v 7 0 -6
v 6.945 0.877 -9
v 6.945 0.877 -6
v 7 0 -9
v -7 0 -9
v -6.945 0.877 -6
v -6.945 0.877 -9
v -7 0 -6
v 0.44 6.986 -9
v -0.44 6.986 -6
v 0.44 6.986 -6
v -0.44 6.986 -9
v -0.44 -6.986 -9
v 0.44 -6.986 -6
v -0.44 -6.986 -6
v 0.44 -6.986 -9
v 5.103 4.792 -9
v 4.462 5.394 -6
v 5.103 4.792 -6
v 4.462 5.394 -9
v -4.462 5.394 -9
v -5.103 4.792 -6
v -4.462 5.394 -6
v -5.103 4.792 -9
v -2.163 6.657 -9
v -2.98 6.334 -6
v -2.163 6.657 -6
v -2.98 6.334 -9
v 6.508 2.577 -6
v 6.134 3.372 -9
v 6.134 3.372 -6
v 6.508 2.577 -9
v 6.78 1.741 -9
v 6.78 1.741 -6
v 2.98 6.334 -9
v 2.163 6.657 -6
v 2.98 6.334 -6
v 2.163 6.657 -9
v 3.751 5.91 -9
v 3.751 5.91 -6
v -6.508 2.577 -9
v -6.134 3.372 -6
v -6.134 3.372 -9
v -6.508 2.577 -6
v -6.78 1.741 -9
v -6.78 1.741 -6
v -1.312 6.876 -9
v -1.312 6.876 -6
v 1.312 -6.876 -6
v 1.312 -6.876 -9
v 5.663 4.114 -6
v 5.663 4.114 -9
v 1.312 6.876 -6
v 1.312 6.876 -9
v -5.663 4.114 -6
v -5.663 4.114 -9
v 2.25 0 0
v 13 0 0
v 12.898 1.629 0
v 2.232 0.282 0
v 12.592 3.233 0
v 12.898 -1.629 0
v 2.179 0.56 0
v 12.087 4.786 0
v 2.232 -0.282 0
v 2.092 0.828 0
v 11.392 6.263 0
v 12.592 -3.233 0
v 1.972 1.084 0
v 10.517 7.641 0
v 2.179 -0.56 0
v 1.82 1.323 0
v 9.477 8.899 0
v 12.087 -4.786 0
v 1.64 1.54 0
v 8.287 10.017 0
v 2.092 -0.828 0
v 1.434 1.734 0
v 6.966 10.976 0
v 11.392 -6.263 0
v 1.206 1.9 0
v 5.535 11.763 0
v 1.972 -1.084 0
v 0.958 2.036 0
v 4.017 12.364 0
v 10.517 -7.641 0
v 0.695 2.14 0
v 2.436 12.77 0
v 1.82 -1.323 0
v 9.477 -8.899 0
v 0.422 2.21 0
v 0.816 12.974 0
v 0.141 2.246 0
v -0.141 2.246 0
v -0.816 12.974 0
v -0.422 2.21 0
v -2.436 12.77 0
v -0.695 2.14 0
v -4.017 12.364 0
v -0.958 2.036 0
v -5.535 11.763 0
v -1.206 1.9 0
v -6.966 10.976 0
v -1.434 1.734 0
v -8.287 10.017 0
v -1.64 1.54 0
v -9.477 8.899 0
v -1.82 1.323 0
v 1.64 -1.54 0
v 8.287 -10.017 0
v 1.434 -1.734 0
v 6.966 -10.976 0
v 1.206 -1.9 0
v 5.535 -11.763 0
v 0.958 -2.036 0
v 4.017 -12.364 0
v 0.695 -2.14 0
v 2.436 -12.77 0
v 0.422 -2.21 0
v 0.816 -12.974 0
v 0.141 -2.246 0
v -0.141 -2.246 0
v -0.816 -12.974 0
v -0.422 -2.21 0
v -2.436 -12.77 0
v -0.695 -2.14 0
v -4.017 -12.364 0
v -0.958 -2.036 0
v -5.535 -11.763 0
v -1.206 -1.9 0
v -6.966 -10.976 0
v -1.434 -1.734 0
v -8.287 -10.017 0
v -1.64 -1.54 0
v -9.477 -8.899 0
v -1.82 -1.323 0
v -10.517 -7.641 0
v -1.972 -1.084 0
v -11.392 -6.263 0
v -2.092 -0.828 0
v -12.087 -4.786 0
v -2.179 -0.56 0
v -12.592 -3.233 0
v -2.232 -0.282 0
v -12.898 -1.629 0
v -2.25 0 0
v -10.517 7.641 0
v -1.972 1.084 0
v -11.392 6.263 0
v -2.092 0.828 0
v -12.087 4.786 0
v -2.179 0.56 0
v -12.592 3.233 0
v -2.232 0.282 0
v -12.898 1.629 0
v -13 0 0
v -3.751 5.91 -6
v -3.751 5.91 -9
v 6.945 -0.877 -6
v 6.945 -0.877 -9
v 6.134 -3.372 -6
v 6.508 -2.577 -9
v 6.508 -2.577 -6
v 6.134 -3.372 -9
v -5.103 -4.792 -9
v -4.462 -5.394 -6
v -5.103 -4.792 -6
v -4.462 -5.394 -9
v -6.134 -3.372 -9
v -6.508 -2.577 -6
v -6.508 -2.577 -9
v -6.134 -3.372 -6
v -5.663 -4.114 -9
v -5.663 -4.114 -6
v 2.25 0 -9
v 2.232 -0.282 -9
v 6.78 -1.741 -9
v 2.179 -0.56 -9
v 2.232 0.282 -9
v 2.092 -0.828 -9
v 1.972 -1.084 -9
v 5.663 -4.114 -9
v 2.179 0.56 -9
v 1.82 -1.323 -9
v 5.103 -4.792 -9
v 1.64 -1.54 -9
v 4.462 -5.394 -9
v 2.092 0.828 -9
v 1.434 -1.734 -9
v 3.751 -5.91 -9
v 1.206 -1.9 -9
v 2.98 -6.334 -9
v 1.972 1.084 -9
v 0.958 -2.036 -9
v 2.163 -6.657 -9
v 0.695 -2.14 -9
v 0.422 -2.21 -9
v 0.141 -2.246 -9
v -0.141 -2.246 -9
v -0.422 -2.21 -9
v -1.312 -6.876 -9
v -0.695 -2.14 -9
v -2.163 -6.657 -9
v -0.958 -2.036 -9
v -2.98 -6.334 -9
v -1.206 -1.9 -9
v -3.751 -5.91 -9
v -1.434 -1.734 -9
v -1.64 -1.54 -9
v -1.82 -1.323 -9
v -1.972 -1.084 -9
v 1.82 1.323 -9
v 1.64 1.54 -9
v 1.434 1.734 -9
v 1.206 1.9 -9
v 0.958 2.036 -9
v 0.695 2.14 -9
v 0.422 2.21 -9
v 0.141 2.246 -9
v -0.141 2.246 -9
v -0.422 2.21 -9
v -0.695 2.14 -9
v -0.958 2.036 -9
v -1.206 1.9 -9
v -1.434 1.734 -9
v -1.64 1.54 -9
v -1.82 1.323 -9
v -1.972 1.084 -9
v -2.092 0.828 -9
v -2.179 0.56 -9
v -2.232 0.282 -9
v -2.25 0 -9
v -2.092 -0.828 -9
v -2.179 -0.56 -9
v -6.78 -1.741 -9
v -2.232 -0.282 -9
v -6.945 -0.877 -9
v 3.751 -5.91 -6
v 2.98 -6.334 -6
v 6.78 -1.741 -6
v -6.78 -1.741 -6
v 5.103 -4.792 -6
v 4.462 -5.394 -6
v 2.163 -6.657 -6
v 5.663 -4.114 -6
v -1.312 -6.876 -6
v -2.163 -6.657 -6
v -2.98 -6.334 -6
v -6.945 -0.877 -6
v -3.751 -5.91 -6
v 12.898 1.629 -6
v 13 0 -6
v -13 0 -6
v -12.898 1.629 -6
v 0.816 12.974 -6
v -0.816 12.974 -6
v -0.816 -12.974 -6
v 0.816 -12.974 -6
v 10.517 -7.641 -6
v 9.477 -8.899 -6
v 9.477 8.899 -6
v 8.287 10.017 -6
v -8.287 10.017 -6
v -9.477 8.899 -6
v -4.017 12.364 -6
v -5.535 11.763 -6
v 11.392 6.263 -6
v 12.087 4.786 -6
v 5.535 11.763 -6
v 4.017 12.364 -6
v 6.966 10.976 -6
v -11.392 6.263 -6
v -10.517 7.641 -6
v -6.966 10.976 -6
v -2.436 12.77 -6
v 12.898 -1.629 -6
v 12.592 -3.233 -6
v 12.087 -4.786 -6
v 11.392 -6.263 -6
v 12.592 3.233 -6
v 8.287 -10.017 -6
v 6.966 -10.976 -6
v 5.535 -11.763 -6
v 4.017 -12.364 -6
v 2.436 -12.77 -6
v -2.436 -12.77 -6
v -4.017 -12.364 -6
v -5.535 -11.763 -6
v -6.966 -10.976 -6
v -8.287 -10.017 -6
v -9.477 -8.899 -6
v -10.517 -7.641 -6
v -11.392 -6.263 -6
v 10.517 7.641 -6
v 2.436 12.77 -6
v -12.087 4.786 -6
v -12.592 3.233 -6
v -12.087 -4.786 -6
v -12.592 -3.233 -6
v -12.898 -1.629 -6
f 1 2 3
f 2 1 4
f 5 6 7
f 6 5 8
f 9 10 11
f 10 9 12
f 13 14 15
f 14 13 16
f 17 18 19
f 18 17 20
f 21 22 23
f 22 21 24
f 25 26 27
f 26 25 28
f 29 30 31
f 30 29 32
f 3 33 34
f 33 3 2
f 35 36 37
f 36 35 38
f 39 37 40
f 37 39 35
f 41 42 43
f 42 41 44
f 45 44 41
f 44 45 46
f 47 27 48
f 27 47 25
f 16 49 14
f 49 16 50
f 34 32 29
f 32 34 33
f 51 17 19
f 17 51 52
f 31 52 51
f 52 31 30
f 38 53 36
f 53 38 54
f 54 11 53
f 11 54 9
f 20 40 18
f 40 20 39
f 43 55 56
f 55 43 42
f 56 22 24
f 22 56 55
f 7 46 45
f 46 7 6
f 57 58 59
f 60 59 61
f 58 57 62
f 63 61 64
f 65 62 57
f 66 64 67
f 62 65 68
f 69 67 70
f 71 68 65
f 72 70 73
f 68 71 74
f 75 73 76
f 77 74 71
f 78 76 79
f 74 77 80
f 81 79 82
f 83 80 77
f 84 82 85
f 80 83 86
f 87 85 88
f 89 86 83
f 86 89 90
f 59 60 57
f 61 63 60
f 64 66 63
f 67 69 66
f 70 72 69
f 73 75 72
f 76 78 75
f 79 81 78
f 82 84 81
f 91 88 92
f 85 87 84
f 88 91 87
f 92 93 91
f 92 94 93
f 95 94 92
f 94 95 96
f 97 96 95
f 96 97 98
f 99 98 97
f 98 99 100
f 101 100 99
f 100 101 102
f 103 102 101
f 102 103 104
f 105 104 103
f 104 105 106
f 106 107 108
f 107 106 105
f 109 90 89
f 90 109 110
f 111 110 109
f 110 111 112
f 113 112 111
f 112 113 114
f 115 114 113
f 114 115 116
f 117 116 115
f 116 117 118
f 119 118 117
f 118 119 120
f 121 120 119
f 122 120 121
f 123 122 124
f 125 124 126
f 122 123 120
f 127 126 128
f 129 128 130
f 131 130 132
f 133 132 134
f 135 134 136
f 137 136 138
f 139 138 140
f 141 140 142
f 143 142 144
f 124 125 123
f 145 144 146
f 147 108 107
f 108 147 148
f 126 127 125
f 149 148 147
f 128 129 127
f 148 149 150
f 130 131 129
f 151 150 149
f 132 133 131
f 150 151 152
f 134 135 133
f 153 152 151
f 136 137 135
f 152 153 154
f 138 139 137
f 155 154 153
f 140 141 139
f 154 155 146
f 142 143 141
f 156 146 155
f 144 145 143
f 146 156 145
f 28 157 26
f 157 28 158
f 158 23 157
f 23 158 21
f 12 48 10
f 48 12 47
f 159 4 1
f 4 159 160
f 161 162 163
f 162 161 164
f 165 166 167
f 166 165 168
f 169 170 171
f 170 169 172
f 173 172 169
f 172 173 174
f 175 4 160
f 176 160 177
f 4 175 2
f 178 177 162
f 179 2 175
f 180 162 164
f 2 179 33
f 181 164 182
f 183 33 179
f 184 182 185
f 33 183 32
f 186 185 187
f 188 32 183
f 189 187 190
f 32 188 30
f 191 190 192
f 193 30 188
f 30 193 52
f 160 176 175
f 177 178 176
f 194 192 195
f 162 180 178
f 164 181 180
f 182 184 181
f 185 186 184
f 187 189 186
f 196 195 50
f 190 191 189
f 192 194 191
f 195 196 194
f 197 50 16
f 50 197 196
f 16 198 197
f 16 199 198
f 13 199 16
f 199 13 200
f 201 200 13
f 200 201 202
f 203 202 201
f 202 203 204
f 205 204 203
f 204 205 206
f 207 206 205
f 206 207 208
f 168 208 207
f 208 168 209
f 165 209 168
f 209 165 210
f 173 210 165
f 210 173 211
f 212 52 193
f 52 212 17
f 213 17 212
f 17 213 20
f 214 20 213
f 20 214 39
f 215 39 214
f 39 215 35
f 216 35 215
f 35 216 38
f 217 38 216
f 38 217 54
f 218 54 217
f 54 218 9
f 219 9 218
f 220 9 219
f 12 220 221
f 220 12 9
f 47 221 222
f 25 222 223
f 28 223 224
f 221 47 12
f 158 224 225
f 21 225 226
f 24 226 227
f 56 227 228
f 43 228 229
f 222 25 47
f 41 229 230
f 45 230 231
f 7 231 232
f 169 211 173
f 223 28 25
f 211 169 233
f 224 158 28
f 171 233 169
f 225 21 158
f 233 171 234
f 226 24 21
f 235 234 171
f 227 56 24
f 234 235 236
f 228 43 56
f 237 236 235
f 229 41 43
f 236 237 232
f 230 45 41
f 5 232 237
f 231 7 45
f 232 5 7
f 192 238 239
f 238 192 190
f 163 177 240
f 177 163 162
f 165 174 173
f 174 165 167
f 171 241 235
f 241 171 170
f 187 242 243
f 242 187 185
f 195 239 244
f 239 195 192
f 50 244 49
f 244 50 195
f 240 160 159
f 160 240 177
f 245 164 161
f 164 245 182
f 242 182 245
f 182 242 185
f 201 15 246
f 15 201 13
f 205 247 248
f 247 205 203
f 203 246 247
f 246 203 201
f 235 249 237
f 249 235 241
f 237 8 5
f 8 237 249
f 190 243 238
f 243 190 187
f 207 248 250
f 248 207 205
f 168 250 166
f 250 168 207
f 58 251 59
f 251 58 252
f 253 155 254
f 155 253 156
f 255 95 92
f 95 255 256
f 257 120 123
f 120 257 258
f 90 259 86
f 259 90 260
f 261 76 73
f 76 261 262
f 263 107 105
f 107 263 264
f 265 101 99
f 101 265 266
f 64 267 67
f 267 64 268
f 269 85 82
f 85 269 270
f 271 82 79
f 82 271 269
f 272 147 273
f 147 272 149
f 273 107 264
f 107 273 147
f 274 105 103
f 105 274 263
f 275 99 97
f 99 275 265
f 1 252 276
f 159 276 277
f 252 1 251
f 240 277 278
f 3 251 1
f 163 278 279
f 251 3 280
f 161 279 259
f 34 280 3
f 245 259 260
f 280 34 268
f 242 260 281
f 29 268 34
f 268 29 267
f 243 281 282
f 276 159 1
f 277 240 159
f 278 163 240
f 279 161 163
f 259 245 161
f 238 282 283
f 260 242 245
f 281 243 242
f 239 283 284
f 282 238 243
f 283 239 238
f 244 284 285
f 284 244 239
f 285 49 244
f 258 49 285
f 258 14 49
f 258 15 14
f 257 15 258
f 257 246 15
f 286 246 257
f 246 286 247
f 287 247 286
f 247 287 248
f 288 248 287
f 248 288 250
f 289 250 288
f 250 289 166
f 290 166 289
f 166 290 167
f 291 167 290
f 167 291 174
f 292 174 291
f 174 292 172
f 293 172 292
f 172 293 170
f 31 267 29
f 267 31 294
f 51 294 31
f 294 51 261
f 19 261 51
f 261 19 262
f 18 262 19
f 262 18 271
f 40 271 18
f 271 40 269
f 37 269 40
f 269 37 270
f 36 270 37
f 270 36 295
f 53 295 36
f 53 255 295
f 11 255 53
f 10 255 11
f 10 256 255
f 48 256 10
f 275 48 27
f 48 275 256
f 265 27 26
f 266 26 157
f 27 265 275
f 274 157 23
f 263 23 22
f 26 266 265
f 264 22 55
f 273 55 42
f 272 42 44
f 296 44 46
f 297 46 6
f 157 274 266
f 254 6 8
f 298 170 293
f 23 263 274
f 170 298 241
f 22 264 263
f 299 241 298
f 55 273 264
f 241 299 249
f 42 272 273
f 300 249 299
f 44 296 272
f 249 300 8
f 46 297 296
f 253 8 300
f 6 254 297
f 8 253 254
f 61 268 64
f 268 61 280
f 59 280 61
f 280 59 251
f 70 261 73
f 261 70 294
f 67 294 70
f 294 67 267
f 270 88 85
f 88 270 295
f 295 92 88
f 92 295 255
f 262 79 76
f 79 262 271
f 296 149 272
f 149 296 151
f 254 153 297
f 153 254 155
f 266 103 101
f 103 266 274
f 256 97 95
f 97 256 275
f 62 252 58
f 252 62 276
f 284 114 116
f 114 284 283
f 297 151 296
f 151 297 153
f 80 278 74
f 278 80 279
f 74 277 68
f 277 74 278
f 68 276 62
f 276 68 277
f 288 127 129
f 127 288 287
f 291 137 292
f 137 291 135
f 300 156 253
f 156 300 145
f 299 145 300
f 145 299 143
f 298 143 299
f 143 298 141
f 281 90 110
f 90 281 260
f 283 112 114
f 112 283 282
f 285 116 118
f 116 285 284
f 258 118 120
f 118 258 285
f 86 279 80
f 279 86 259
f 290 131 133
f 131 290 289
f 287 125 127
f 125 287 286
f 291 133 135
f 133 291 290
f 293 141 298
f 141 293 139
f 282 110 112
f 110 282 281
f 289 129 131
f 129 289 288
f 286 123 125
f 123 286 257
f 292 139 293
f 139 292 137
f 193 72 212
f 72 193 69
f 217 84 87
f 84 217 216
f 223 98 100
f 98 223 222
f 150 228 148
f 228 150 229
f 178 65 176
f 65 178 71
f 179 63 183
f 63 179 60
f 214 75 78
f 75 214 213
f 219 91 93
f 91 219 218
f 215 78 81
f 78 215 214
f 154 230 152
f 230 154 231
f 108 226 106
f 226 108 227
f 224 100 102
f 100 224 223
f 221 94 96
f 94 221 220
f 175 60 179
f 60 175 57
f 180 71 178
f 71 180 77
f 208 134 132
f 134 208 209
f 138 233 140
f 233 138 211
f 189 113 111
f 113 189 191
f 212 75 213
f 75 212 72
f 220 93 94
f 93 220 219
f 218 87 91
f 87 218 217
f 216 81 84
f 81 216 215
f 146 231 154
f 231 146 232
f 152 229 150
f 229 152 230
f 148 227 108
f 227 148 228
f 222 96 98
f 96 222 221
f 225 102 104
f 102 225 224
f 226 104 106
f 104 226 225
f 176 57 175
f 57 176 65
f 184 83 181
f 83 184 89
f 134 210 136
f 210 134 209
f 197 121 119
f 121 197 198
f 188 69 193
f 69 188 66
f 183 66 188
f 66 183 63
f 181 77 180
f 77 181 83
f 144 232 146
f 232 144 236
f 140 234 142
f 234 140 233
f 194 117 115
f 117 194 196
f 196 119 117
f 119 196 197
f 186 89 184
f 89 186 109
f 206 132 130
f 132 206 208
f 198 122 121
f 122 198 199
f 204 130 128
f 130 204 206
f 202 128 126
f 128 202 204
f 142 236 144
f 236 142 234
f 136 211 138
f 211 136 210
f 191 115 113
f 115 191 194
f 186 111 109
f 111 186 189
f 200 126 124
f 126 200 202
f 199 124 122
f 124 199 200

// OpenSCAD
$fn = 50;


difference() {
	union() {
		translate(v = [0, 0, -9.0000000000]) {
			cylinder(h = 9, r = 7.0000000000);
		}
		translate(v = [0, 0, -6.0000000000]) {
			cylinder(h = 6, r = 13.0000000000);
		}
	}
	union() {
		#translate(v = [0, 0, -9]) {
			cylinder(h = 9, r = 2.2500000000);
		}
	}
}
